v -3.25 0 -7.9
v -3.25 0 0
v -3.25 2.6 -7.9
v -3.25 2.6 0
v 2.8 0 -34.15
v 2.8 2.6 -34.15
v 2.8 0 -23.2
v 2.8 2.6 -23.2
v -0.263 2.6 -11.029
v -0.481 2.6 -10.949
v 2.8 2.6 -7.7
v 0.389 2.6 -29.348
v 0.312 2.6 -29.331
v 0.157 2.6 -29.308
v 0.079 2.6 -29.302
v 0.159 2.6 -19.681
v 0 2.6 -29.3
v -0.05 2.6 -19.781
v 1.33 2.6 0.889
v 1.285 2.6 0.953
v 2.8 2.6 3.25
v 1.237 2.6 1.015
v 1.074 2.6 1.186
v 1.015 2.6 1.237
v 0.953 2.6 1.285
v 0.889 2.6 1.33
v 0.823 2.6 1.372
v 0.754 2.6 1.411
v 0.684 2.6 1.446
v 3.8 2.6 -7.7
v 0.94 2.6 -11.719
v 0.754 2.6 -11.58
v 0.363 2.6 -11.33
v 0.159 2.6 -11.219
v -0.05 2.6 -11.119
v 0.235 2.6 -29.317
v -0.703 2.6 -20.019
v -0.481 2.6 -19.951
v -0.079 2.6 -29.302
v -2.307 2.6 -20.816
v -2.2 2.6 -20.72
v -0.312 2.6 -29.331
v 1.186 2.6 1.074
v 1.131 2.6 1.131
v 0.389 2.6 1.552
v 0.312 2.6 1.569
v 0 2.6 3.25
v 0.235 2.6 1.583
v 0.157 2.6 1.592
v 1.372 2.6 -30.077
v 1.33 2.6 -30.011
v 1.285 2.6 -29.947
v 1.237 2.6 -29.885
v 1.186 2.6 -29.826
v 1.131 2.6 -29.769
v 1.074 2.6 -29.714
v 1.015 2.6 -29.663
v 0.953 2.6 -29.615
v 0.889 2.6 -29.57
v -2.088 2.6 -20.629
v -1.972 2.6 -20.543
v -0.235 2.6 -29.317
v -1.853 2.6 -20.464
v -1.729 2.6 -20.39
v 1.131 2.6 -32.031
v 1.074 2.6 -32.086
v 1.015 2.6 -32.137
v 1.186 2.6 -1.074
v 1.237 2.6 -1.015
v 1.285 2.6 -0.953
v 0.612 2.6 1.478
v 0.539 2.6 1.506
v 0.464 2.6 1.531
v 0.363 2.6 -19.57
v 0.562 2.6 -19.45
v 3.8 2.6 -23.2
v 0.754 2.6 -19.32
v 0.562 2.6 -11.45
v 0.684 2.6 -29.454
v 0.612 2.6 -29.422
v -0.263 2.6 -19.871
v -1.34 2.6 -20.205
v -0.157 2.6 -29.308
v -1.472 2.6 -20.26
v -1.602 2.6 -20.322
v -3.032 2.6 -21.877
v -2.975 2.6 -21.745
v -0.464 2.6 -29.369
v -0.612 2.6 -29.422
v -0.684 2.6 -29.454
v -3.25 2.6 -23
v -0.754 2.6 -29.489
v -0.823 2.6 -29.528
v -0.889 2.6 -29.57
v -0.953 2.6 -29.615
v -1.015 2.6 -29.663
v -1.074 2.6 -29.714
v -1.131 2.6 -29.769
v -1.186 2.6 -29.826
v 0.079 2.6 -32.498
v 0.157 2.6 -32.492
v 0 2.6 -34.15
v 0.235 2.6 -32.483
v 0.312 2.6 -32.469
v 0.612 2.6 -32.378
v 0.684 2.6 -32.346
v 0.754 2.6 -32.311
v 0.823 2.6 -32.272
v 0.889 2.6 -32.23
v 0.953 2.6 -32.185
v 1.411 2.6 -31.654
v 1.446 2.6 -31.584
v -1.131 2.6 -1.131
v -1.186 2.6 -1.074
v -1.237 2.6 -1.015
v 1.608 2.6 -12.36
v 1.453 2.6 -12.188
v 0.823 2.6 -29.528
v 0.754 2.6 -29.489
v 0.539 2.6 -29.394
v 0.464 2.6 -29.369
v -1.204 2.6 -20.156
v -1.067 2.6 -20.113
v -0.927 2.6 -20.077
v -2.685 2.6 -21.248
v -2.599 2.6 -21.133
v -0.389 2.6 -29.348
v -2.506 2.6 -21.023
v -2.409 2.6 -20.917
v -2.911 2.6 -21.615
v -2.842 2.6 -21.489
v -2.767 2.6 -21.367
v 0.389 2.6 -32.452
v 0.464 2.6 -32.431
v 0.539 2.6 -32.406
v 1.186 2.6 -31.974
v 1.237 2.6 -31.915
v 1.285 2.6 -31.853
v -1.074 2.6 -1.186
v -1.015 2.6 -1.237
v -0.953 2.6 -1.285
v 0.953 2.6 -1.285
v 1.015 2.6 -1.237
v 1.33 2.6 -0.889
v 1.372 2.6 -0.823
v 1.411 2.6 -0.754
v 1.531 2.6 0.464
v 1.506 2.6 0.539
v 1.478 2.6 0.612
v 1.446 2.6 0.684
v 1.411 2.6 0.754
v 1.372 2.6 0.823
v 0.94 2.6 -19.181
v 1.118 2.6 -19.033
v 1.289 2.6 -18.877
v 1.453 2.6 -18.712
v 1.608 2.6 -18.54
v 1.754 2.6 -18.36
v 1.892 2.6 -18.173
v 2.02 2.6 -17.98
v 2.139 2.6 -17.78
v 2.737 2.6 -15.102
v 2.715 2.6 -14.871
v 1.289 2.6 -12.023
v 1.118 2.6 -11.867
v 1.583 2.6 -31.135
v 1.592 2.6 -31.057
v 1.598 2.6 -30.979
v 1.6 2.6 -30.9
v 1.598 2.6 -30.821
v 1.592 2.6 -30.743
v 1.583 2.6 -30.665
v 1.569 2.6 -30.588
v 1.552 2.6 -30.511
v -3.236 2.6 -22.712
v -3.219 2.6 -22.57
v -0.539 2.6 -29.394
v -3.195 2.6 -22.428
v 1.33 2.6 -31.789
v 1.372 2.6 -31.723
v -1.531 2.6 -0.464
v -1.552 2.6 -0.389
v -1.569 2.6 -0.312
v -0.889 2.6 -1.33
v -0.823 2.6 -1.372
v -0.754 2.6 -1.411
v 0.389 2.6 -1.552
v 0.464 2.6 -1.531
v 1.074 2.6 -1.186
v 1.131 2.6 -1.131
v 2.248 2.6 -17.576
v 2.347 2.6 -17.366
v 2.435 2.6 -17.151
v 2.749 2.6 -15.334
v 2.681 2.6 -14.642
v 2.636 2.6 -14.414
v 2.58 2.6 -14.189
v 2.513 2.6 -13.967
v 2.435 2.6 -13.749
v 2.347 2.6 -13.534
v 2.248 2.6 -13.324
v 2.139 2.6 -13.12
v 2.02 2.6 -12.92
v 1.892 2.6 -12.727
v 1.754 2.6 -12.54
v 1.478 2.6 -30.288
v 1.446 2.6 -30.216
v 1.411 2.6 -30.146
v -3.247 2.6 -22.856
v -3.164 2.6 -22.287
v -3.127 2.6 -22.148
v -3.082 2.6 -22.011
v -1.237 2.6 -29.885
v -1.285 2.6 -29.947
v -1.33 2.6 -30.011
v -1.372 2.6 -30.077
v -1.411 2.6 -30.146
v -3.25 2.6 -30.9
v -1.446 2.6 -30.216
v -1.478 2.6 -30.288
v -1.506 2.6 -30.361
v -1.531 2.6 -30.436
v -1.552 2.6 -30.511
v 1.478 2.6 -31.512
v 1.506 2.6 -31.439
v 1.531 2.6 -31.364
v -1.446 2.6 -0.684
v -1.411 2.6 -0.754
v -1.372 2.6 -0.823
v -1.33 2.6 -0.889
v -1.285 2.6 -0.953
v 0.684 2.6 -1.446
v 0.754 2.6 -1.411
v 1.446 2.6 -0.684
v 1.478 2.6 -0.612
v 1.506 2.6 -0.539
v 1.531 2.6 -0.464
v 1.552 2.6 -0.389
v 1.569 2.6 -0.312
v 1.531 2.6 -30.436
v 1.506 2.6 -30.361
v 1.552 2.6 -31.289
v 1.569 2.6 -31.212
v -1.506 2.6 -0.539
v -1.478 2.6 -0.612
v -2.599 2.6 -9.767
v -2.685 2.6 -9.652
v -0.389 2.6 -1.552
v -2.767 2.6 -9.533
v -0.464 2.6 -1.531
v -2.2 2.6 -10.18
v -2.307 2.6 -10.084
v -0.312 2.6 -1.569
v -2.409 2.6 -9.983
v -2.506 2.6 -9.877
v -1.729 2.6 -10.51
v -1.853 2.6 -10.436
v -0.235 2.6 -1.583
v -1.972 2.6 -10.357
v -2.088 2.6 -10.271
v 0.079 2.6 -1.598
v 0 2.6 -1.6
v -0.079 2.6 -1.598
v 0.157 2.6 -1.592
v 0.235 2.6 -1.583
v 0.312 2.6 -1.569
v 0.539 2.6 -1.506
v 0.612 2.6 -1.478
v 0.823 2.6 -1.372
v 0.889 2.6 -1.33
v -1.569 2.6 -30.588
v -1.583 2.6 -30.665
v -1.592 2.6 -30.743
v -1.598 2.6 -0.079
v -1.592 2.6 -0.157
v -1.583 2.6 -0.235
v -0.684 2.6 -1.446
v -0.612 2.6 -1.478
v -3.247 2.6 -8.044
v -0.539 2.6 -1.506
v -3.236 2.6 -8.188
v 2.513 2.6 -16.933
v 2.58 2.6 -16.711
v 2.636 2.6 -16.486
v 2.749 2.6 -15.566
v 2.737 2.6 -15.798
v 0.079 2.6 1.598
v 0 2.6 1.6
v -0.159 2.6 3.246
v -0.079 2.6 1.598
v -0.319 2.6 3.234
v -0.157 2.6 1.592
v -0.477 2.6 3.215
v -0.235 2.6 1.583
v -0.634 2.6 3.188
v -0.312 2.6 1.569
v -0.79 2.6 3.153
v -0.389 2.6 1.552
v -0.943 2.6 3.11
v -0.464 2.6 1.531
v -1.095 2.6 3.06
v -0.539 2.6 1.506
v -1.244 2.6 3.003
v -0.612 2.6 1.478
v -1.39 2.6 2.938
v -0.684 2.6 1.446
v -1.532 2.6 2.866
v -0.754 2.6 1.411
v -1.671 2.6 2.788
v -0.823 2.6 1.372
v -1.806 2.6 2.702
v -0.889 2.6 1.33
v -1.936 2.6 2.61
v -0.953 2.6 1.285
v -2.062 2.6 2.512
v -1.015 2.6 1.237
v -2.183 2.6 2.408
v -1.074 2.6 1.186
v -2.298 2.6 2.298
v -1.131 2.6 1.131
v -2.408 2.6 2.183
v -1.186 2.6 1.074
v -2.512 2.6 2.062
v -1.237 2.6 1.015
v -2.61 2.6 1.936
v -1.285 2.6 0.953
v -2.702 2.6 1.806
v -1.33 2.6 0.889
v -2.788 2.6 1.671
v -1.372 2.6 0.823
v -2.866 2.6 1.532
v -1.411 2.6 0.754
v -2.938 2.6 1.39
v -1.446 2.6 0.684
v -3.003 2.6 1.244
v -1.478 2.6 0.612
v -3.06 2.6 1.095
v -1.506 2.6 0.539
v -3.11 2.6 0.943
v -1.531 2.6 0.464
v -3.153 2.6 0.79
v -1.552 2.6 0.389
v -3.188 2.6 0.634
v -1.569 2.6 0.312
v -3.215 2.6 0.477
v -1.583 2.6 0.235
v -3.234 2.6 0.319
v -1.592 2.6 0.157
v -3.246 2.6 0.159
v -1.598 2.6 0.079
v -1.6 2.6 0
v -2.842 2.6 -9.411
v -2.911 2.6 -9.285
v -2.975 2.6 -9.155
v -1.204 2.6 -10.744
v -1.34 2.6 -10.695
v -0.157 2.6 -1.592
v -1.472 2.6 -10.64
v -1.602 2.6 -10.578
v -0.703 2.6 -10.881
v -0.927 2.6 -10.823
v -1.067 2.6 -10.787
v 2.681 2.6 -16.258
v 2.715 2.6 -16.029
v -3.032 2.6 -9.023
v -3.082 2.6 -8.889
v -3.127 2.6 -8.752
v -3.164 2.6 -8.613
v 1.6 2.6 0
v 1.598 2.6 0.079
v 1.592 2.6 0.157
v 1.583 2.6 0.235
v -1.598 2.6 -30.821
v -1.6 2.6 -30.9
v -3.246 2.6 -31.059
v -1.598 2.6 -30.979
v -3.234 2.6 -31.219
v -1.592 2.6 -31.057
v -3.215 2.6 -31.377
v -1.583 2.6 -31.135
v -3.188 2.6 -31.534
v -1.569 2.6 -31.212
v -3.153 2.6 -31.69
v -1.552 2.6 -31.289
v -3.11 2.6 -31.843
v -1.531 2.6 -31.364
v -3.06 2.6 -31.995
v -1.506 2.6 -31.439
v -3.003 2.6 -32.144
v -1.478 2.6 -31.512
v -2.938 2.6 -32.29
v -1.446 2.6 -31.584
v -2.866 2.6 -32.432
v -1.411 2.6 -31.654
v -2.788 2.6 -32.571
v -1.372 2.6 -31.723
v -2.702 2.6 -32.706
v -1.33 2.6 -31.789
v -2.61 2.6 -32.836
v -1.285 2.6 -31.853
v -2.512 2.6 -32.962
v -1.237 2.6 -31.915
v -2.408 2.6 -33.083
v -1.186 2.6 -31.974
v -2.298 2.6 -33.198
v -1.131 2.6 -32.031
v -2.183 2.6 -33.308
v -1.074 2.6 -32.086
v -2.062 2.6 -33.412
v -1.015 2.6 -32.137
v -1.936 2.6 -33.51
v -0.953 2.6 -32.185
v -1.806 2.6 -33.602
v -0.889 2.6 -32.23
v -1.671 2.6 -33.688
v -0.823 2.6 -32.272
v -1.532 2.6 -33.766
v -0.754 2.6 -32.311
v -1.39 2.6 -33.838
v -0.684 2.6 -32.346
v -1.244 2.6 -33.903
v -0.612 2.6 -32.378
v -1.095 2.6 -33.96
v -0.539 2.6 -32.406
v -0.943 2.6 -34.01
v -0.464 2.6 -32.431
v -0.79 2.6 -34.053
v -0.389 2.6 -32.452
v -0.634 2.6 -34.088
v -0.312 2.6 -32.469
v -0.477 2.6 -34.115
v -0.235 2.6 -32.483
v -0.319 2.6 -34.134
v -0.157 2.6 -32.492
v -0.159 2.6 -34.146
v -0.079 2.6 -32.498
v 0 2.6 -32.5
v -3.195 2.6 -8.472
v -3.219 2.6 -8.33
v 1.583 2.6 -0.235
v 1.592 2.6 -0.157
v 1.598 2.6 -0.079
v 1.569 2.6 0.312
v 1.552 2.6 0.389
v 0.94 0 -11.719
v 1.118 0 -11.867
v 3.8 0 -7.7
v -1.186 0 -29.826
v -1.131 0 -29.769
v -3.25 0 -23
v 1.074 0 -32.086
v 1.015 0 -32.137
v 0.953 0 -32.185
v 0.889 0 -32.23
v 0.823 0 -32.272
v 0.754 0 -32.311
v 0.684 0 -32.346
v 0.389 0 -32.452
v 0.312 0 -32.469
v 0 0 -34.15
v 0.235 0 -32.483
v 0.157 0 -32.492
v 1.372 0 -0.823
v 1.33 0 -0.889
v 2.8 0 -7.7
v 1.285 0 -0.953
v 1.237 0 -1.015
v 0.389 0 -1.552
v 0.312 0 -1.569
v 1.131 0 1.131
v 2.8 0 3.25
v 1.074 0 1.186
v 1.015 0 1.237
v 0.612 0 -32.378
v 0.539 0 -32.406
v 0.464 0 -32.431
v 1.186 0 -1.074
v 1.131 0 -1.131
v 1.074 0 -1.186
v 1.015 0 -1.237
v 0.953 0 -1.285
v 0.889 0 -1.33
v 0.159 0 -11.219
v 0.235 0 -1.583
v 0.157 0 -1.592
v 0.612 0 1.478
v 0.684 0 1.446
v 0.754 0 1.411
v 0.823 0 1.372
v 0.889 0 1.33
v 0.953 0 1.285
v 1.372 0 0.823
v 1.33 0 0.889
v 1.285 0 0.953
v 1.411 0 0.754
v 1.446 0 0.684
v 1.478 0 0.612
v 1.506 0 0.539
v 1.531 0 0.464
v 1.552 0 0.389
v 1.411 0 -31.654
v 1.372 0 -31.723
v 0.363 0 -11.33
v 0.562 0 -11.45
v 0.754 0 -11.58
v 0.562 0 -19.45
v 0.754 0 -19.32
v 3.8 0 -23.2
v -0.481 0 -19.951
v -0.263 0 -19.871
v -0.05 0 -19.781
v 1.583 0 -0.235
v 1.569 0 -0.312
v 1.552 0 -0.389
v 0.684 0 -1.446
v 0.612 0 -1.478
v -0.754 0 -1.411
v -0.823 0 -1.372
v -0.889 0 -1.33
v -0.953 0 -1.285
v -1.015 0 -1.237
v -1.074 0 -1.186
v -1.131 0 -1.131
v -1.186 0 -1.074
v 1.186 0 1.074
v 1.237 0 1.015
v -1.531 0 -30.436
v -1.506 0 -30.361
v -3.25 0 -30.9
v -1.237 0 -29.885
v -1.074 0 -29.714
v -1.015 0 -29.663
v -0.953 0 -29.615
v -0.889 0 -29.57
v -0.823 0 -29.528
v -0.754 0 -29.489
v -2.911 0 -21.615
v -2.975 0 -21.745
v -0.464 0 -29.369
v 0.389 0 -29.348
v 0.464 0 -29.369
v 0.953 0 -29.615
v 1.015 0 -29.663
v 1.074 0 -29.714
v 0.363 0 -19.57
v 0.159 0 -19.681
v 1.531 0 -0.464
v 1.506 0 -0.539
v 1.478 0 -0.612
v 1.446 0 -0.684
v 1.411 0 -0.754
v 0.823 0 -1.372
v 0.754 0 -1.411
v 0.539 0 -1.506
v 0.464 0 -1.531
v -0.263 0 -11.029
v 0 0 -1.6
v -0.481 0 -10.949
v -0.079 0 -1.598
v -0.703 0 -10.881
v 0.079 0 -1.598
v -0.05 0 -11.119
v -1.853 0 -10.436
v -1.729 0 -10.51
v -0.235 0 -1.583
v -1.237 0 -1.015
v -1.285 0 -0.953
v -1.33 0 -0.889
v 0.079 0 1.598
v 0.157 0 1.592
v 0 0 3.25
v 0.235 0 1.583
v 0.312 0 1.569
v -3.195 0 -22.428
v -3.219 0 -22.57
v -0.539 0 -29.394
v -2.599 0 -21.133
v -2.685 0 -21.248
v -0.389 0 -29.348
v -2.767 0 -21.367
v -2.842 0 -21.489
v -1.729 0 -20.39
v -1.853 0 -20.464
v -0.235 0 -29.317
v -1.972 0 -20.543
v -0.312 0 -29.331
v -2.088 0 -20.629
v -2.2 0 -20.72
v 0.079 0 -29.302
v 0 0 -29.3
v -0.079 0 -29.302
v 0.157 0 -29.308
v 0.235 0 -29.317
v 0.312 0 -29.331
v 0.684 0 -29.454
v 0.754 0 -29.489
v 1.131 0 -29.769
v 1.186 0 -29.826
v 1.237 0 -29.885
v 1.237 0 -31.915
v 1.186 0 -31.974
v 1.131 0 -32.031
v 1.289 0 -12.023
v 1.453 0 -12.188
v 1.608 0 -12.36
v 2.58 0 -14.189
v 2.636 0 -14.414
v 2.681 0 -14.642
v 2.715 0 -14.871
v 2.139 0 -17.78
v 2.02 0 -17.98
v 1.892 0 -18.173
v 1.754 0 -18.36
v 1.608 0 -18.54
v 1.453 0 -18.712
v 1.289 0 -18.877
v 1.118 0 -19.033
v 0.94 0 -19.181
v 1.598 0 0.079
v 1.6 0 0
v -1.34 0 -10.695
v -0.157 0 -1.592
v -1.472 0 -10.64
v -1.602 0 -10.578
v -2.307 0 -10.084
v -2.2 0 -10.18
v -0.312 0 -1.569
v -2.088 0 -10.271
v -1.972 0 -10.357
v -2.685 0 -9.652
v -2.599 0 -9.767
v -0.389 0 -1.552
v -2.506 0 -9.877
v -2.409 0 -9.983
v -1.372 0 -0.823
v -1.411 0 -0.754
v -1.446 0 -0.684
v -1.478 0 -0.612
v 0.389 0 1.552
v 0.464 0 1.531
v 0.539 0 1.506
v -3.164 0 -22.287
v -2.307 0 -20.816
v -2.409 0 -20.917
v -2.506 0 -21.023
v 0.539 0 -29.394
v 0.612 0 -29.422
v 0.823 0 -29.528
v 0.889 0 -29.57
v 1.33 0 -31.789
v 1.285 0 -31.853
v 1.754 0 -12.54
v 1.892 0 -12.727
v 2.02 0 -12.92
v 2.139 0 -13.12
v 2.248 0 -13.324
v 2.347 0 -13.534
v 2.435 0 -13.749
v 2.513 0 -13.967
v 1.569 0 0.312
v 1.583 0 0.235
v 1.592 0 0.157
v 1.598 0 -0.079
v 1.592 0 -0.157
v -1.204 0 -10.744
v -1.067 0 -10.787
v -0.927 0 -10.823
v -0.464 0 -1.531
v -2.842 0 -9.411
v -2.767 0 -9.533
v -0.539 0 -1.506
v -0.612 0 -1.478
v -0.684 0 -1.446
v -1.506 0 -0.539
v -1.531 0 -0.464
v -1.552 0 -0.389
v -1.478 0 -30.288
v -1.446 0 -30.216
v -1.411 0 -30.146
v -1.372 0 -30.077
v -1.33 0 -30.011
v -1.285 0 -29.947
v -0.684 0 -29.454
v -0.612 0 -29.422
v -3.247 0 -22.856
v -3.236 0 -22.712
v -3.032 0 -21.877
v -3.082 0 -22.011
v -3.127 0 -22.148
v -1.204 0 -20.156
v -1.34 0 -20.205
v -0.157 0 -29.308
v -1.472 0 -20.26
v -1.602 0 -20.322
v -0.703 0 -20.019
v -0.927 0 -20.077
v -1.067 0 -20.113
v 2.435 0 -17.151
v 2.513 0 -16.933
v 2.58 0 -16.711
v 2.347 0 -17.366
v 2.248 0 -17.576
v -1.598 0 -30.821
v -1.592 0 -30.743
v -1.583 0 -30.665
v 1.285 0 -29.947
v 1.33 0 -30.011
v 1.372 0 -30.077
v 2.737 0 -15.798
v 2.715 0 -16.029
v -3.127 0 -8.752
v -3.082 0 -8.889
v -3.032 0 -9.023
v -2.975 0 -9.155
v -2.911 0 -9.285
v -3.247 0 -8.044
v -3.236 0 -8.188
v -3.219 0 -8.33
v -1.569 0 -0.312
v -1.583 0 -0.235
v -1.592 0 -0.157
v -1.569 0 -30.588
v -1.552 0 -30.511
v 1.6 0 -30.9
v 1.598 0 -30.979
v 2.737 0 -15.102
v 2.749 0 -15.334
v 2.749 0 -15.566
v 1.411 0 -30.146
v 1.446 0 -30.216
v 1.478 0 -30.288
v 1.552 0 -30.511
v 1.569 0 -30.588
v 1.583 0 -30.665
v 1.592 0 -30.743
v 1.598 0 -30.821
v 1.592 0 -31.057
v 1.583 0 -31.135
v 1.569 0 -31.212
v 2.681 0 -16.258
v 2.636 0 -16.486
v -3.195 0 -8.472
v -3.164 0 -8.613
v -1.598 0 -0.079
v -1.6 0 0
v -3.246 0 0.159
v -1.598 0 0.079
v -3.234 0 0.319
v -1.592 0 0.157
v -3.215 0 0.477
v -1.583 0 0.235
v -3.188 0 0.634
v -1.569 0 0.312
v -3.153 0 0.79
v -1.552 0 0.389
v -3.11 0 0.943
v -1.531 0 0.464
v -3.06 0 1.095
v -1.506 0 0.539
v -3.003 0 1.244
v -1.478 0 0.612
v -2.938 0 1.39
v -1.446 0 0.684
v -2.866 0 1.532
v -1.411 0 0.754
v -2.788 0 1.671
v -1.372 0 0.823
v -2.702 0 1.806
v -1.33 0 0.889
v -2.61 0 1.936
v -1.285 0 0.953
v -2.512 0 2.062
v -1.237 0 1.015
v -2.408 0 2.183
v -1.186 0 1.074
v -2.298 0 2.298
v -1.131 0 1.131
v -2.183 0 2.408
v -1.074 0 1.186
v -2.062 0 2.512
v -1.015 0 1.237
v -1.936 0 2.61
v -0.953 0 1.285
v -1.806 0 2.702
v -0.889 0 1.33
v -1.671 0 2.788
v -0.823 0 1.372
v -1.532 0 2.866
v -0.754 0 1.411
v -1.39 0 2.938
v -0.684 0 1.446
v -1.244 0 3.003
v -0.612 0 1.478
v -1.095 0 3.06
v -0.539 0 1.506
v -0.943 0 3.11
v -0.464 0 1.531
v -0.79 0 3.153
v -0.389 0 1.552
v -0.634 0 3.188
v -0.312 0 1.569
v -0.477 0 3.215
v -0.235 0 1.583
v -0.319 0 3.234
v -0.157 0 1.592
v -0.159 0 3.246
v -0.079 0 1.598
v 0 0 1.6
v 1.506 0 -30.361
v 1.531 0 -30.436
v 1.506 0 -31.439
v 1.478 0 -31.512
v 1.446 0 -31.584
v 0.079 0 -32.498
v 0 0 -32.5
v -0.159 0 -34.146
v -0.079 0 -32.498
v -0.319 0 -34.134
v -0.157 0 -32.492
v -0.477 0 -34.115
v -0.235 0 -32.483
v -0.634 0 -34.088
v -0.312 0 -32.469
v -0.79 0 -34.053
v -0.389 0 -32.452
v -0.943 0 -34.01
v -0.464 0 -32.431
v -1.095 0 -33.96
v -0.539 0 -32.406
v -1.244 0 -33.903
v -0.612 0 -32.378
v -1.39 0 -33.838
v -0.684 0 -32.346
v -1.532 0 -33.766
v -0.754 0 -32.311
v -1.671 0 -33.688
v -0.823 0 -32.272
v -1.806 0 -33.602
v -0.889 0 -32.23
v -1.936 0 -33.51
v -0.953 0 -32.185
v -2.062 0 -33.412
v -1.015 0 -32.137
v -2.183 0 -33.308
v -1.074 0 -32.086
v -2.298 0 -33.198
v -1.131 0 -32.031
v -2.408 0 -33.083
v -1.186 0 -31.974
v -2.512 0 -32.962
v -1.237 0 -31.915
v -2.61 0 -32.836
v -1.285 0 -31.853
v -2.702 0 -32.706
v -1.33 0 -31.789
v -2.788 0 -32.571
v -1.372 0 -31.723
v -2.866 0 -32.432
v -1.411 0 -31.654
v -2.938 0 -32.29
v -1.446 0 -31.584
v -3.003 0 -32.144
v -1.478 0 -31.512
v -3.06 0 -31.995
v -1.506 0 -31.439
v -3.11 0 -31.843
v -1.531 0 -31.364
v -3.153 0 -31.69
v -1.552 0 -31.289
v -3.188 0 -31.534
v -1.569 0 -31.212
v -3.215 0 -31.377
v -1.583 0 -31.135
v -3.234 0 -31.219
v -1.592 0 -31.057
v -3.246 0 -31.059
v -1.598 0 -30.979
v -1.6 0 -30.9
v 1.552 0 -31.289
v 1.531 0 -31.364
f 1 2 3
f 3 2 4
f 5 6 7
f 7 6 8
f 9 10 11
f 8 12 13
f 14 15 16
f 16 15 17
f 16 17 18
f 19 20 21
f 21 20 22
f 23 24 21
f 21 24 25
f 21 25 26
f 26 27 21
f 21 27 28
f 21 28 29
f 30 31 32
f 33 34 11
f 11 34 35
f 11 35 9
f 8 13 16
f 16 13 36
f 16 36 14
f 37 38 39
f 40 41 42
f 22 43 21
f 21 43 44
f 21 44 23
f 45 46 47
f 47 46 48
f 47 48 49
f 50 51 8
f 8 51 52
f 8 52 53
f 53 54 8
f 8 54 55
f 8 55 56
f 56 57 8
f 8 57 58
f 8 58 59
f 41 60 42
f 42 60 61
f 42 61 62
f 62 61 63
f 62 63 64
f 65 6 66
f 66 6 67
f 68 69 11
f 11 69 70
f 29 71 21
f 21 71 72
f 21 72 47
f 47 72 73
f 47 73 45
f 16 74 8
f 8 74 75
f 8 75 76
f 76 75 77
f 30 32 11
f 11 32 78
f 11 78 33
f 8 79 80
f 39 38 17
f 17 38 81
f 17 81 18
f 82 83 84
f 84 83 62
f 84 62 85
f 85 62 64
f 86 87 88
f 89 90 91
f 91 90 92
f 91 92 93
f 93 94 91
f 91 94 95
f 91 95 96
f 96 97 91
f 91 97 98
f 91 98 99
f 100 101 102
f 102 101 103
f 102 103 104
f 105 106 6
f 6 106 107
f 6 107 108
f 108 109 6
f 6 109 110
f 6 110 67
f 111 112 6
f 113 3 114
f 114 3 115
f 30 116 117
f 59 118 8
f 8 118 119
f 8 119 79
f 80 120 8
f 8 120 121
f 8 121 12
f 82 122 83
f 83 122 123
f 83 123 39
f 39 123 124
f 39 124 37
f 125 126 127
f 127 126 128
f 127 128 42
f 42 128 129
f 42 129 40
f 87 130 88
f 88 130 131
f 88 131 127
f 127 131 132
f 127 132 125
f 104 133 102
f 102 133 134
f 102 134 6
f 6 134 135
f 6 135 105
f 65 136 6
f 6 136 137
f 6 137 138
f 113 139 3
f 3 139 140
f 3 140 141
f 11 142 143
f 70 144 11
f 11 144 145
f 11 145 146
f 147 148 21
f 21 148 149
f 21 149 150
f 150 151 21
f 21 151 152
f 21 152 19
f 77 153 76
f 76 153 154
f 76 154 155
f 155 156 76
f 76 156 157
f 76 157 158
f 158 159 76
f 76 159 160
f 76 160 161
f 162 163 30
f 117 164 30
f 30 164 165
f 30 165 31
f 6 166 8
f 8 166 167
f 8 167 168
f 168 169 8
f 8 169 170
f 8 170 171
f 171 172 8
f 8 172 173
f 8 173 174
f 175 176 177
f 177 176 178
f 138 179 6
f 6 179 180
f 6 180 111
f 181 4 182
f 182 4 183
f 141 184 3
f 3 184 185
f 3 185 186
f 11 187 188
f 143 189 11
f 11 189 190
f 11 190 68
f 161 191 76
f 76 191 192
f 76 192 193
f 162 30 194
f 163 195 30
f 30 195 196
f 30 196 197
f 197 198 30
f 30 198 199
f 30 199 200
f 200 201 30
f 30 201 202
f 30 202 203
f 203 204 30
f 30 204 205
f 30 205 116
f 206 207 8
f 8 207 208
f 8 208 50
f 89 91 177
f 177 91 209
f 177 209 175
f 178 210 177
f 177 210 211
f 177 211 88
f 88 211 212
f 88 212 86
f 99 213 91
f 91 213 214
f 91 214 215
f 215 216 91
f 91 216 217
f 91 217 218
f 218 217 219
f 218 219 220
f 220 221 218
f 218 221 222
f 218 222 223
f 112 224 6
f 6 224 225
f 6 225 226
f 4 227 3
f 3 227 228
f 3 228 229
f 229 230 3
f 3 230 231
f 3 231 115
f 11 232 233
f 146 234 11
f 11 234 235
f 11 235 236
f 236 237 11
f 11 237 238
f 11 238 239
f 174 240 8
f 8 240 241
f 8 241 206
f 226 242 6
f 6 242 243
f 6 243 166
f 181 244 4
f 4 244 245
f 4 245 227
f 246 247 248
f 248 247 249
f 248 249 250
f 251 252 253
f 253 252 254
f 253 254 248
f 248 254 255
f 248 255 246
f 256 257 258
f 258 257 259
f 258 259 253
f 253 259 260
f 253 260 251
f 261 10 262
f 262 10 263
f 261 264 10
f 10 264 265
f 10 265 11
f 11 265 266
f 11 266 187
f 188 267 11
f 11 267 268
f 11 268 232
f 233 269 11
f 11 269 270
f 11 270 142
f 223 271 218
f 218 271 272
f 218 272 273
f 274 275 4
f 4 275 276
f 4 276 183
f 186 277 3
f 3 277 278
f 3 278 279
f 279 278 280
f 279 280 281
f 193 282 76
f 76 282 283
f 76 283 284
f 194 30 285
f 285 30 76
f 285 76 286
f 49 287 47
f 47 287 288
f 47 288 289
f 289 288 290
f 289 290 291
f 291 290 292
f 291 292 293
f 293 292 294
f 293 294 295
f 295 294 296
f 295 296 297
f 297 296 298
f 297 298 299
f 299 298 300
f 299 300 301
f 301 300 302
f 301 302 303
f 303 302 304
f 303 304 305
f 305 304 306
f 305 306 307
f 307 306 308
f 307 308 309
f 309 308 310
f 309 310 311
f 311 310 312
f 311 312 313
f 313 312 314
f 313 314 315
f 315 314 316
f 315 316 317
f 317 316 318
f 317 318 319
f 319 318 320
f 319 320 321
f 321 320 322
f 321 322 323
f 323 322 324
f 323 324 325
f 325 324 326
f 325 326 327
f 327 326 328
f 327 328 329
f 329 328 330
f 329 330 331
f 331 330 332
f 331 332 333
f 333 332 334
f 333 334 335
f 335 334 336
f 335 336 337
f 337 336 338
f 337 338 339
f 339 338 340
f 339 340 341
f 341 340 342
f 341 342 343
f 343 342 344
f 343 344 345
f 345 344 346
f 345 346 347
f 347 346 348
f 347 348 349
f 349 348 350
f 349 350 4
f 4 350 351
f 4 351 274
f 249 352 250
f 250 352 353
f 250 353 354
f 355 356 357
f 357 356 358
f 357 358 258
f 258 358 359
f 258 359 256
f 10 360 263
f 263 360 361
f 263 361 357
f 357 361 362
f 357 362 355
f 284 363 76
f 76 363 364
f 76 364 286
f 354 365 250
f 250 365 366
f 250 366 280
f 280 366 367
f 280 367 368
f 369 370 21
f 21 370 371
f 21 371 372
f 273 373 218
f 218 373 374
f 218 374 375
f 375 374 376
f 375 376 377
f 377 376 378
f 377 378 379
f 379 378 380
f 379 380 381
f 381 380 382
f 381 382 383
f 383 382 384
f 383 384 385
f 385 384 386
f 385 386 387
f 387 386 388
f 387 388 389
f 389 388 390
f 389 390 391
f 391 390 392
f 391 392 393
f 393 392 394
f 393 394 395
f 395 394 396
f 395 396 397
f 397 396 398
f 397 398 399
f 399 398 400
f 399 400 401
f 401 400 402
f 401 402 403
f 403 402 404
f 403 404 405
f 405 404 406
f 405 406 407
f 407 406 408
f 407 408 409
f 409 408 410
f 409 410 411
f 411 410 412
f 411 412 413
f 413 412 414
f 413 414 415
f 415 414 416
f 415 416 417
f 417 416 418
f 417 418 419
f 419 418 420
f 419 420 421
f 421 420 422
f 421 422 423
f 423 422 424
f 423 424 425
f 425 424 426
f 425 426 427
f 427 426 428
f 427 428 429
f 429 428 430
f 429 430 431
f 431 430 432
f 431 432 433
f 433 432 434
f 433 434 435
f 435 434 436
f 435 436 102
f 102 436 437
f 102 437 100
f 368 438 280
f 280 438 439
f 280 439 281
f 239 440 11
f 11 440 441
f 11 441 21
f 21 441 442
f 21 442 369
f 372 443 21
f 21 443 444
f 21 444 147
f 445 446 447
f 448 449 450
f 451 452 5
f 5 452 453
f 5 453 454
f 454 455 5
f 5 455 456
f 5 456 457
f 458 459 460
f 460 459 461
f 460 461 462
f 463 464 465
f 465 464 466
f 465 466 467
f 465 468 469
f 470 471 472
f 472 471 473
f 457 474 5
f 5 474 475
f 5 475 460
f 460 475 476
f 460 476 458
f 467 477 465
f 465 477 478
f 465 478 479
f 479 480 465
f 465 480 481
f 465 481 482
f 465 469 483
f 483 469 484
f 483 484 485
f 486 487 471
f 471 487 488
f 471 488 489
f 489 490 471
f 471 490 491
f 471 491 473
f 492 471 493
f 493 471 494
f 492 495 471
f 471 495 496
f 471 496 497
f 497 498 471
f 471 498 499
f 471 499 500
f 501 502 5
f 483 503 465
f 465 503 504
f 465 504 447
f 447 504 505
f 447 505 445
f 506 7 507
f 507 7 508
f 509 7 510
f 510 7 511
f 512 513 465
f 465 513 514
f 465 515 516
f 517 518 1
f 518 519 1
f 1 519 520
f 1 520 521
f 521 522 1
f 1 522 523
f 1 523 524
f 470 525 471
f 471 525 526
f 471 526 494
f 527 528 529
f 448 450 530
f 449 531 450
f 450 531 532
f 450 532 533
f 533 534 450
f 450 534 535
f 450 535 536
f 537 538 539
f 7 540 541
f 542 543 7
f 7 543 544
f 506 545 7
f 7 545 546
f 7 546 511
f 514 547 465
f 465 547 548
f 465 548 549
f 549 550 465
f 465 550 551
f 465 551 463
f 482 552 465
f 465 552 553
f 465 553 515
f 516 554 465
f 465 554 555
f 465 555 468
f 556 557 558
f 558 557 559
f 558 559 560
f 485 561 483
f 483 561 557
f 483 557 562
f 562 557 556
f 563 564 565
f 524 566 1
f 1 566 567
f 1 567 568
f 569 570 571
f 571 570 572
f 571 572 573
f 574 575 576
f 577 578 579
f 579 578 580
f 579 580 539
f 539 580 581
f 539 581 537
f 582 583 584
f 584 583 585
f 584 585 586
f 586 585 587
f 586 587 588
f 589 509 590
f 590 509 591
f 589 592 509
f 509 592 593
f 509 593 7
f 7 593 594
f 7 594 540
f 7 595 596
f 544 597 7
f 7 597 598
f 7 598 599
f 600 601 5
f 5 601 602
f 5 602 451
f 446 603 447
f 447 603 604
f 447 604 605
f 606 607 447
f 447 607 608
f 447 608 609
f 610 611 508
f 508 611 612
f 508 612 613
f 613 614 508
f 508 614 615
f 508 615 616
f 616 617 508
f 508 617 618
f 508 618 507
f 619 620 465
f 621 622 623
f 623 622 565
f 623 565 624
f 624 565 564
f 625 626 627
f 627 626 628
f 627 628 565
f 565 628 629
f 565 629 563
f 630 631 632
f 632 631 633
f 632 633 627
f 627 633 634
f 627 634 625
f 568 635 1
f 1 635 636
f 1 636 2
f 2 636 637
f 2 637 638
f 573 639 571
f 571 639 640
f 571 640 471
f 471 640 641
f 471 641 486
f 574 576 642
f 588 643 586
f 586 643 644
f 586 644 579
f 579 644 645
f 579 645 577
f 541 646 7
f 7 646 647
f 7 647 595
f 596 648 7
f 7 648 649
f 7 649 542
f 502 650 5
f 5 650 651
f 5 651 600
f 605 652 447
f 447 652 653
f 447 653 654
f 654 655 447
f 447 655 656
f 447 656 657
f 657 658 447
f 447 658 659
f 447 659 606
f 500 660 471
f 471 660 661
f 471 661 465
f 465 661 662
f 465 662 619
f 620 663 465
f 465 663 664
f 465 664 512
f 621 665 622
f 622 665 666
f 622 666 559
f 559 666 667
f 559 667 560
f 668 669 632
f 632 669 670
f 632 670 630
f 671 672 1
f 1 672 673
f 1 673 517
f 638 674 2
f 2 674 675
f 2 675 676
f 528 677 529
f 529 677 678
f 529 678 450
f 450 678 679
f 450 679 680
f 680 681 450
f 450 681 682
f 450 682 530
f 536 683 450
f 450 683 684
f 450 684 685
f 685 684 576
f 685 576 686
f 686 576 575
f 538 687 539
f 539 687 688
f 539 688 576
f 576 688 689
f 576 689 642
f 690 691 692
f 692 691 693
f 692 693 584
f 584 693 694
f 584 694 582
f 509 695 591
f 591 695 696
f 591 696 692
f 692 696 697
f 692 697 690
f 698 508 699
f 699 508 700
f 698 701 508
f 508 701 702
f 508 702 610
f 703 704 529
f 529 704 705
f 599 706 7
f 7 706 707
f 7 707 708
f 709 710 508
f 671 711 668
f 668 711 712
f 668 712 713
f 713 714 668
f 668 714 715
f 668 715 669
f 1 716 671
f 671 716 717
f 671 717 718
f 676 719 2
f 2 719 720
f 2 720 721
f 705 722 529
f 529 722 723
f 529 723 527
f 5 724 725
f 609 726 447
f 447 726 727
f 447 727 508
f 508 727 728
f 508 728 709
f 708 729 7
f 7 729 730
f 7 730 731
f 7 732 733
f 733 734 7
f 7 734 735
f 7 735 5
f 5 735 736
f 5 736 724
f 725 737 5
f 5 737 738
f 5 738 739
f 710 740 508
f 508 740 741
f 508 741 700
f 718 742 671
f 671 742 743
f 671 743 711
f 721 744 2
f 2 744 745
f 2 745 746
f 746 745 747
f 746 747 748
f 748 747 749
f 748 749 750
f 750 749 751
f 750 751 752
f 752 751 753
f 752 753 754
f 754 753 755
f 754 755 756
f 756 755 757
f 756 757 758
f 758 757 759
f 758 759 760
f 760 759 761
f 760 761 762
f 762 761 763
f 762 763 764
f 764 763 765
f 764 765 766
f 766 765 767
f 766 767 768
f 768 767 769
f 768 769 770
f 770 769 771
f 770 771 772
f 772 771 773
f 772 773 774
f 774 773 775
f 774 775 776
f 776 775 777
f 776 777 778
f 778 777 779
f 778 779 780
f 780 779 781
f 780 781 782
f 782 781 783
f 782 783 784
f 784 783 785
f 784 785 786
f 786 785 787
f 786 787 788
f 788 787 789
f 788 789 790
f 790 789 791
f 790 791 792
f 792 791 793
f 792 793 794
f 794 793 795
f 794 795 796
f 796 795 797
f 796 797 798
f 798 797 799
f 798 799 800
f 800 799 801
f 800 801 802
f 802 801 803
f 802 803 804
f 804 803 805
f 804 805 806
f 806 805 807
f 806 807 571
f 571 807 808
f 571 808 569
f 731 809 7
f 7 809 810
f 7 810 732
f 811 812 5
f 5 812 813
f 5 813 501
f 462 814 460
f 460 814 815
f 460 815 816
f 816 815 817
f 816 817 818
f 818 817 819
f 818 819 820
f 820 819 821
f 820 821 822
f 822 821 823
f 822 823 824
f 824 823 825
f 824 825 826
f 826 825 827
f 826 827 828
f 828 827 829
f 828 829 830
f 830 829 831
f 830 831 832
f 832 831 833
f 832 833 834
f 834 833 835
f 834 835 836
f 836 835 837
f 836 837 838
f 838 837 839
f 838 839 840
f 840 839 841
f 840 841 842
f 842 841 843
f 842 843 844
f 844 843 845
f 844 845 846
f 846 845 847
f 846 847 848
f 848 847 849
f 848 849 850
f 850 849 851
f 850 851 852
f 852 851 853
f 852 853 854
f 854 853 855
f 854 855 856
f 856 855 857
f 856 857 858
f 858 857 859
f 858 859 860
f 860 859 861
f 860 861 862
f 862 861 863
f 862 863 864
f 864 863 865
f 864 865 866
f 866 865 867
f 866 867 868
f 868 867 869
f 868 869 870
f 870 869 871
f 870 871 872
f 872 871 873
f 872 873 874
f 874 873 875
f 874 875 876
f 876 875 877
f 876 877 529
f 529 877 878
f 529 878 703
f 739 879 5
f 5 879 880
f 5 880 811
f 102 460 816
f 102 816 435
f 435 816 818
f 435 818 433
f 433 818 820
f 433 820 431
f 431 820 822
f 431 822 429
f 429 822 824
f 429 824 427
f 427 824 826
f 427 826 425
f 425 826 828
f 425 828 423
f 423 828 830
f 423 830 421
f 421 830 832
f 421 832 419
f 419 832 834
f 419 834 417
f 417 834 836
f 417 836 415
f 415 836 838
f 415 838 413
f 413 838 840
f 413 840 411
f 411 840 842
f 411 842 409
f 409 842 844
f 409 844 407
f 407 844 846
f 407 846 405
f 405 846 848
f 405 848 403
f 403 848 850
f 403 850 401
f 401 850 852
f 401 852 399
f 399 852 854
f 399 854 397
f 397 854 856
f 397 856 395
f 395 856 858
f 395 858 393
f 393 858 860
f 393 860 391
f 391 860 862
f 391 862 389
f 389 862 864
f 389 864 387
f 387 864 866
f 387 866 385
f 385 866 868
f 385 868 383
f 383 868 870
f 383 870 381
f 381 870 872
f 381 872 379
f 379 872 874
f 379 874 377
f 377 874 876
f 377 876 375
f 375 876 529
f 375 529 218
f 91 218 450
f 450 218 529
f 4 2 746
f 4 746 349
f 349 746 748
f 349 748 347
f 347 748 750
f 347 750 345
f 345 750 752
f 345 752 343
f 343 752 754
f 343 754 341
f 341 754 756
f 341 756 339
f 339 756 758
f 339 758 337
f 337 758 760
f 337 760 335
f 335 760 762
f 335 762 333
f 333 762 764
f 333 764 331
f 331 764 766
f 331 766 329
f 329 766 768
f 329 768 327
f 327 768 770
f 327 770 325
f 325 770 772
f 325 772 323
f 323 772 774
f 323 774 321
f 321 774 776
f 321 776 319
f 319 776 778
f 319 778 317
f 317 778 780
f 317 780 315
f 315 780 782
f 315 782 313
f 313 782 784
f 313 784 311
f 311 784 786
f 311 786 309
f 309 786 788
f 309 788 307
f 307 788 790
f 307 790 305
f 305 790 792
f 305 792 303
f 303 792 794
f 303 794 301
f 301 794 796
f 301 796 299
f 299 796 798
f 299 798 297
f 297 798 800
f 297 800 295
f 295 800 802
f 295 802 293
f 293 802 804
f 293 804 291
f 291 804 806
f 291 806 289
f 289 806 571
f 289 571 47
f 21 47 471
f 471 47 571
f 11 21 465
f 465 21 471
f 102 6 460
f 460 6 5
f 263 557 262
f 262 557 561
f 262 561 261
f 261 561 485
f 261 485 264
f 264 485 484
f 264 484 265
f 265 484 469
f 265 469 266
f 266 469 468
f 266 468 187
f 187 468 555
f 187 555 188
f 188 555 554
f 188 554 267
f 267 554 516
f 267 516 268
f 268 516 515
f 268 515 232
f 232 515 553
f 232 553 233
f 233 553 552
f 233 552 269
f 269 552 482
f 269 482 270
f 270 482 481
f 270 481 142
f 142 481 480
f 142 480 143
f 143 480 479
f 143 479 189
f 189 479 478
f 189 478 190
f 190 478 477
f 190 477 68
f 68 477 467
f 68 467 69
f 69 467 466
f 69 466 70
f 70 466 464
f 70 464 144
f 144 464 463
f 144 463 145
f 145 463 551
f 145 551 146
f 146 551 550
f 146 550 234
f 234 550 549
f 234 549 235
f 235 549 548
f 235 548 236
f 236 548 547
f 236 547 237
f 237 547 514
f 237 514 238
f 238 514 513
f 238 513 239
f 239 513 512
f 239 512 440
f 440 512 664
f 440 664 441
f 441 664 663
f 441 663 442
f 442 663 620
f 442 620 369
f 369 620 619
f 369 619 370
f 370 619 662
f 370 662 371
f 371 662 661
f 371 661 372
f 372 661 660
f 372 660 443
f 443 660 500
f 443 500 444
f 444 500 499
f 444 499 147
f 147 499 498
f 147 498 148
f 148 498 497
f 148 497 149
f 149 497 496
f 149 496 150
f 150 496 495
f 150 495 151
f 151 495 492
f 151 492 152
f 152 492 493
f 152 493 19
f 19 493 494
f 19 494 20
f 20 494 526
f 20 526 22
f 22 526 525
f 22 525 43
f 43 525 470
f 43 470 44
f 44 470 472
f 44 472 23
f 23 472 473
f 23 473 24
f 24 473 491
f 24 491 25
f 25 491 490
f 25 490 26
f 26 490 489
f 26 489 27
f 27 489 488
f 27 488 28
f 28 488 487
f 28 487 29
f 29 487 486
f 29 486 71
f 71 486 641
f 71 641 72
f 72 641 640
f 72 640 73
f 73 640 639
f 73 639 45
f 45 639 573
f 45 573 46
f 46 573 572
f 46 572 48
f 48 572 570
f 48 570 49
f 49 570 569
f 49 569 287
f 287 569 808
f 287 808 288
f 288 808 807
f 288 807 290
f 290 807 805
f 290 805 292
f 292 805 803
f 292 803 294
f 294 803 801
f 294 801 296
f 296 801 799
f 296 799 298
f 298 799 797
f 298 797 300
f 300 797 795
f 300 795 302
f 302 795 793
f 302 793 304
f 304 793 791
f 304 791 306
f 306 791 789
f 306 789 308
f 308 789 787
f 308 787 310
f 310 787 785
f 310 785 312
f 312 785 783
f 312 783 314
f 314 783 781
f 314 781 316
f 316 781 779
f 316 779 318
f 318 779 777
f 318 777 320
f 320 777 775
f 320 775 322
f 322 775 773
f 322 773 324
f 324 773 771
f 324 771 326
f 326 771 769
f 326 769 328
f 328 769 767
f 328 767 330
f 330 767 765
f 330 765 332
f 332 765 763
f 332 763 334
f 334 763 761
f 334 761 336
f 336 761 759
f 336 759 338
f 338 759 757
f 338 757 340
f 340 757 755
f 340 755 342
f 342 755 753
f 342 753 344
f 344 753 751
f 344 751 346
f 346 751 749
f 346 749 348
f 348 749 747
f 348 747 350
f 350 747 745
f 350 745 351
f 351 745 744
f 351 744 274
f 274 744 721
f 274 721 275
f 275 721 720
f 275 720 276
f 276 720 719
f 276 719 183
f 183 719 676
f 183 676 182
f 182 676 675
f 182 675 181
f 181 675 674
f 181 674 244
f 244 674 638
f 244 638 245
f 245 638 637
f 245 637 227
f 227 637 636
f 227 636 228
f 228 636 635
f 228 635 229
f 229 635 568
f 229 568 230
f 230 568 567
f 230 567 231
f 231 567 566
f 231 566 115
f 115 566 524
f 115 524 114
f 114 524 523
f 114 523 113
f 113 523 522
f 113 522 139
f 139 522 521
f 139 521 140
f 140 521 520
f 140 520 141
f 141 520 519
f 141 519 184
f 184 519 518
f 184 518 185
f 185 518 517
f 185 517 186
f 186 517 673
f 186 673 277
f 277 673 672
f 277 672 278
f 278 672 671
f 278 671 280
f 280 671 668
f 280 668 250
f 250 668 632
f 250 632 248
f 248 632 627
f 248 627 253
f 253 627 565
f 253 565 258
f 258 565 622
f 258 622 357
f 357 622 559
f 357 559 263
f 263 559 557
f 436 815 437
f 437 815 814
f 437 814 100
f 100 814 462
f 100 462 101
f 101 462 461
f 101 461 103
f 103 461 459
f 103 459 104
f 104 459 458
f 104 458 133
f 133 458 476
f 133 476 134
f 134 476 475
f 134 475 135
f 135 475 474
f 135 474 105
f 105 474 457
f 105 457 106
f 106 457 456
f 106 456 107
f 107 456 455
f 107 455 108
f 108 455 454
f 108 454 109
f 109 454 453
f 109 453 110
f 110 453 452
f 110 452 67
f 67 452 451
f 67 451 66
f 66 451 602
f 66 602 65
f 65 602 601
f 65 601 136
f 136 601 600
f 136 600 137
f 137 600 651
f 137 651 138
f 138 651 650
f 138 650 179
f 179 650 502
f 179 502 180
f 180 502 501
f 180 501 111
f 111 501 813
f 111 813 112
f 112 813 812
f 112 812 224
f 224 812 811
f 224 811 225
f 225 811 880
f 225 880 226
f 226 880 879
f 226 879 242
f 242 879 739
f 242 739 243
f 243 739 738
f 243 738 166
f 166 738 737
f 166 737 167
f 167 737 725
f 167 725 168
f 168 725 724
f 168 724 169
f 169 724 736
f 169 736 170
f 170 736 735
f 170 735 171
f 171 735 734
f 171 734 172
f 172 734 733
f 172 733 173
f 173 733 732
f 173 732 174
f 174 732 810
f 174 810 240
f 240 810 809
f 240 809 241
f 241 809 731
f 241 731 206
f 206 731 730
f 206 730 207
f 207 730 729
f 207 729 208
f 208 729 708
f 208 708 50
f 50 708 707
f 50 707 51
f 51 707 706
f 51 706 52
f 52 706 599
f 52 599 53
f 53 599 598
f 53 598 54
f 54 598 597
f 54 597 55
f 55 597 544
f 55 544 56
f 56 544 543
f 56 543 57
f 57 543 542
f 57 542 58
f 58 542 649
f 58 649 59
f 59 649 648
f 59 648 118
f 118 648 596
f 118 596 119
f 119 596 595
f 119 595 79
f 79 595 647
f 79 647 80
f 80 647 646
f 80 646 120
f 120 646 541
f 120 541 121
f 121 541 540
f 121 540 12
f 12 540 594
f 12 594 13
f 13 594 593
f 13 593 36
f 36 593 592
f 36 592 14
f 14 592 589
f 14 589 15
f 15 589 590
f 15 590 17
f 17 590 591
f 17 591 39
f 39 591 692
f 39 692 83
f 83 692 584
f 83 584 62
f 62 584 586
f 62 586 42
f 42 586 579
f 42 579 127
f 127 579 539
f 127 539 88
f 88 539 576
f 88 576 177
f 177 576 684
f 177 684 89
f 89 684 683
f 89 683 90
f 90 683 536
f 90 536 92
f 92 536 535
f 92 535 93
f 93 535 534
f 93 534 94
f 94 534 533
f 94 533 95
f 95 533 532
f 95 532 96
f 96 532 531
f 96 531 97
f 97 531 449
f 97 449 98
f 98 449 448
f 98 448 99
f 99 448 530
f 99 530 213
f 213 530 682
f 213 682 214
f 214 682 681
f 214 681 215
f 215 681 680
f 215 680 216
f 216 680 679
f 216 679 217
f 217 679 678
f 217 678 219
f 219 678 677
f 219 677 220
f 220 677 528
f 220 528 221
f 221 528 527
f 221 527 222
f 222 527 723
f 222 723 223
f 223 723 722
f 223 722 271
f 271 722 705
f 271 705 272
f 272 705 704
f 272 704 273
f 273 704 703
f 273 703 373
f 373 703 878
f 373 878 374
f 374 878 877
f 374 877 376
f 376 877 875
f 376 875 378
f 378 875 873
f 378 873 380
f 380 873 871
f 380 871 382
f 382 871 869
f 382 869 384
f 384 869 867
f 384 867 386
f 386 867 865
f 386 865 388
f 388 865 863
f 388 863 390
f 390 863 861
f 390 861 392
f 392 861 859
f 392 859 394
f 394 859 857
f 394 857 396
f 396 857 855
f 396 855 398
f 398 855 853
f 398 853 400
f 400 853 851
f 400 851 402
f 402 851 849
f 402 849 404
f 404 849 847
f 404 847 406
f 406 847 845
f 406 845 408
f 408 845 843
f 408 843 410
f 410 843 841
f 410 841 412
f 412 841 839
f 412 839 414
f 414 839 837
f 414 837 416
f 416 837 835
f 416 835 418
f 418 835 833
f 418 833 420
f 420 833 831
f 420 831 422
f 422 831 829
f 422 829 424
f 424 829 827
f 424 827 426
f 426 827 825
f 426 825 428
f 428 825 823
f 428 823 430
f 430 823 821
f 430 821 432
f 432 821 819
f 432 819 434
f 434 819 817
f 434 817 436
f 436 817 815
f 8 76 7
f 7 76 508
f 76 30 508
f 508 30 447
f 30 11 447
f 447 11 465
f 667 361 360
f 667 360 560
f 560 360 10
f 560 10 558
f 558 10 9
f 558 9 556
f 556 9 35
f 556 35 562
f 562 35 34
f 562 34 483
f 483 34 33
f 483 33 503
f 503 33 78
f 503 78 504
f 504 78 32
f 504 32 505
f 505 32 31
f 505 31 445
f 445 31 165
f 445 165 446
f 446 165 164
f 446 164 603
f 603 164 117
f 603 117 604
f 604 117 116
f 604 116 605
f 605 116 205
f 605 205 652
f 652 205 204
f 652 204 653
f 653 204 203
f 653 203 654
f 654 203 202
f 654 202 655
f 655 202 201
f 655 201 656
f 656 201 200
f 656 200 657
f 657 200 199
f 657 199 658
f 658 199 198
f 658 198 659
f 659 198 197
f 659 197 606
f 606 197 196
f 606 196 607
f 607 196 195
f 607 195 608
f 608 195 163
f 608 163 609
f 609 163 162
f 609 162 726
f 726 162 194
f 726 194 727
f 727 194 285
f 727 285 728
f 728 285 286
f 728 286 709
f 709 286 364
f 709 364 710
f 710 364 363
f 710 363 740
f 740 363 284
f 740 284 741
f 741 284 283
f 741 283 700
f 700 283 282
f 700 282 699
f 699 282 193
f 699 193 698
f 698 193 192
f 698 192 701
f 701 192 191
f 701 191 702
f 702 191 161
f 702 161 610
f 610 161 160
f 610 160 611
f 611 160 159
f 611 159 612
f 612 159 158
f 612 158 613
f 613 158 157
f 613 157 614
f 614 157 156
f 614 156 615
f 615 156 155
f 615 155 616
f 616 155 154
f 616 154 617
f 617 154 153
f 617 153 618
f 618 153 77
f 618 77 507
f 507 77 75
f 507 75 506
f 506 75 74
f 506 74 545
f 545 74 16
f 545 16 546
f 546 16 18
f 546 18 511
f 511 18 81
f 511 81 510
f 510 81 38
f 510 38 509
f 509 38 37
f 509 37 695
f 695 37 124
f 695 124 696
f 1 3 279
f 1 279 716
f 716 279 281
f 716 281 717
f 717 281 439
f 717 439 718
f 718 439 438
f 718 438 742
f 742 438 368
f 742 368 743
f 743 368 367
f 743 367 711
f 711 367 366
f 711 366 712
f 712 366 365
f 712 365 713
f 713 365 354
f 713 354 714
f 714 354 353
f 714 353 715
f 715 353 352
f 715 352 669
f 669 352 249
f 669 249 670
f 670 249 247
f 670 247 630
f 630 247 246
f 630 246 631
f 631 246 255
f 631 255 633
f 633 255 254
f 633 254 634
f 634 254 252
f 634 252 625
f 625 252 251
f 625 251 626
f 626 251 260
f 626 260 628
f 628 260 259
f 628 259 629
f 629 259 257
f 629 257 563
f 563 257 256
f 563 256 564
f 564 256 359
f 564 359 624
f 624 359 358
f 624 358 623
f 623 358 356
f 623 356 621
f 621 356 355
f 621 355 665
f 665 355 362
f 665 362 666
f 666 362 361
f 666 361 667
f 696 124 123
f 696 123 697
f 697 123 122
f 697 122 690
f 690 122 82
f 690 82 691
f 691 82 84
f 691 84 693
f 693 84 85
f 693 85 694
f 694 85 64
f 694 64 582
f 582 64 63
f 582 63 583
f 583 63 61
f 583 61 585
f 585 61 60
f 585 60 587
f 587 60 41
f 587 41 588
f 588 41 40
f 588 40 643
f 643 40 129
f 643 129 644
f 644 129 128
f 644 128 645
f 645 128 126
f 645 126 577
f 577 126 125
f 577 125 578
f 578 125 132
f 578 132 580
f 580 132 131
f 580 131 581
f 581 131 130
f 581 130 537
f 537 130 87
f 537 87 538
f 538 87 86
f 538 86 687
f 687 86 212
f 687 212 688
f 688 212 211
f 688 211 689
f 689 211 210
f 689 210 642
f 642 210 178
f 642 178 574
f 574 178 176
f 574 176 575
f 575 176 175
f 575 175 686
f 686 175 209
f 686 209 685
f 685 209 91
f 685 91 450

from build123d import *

# Parameters (mm, degrees)
CROQUIS1_R              = 1.6
SALIENTE_EXTRUIR1_DEPTH = 2.6
CROQUIS3_W              = 1
CROQUIS3_H              = 15.5
SALIENTE_EXTRUIR2_DEPTH = 2.6
CORTAR_EXTRUIR1_DEPTH   = 35.458997374
REDONDEO1_R             = 3


with BuildPart() as part:
    # Croquis1 → Saliente-Extruir1 (new body)
    with BuildSketch(Plane(origin=(0, 0, 0), x_dir=(1, 0, 0), z_dir=(0, 1, 0))):
        with BuildLine():
            Line((-3.25, 30.9), (-3.25, 0))
            ThreePointArc((-3.25, 0), (-2.298097039, -2.298097039), (0, -3.25))
            Line((0, -3.25), (2.8, -3.25))
            Line((2.8, -3.25), (2.8, 34.15))
            Line((2.8, 34.15), (0, 34.15))
            ThreePointArc((0, 34.15), (-2.298097039, 33.198097039), (-3.25, 30.9))
        make_face()
        with Locations(Location((0, 0, 0), (0, 0, 270))):
            Circle(CROQUIS1_R, mode=Mode.SUBTRACT)
        with Locations(Location((0, 30.9, 0), (0, 0, 270))):
            Circle(CROQUIS1_R, mode=Mode.SUBTRACT)
    extrude(amount=SALIENTE_EXTRUIR1_DEPTH)

    # Croquis3 → Saliente-Extruir2 (add)
    with BuildSketch(Plane(origin=(0, 2.6, 0), x_dir=(1, 0, 0), z_dir=(0, 1, 0))):
        with Locations((3.3, 15.45)):
            Rectangle(CROQUIS3_W, CROQUIS3_H)
    extrude(amount=-SALIENTE_EXTRUIR2_DEPTH)

    # Croquis2 → Cortar-Extruir1 (cut, through all)
    with BuildSketch(Plane(origin=(0, 2.6, 0), x_dir=(1, 0, 0), z_dir=(0, 1, 0))):
        with BuildLine():
            Line((-2, 20.2), (-3.25, 20.2))
            Line((-3.25, 20.2), (-3.25, 10.7))
            Line((-3.25, 10.7), (-2, 10.7))
            ThreePointArc((-2, 10.7), (2.75, 15.45), (-2, 20.2))
        make_face()
    extrude(amount=-CORTAR_EXTRUIR1_DEPTH, mode=Mode.SUBTRACT)

    # Redondeo1
    redondeo1_edges = [part.edges().sort_by_distance(p)[0] for p in [
        (-3.25, 1.3, -10.7),
        (-3.25, 1.3, -20.2),
    ]]
    fillet(redondeo1_edges, radius=REDONDEO1_R)


solid = part.part
